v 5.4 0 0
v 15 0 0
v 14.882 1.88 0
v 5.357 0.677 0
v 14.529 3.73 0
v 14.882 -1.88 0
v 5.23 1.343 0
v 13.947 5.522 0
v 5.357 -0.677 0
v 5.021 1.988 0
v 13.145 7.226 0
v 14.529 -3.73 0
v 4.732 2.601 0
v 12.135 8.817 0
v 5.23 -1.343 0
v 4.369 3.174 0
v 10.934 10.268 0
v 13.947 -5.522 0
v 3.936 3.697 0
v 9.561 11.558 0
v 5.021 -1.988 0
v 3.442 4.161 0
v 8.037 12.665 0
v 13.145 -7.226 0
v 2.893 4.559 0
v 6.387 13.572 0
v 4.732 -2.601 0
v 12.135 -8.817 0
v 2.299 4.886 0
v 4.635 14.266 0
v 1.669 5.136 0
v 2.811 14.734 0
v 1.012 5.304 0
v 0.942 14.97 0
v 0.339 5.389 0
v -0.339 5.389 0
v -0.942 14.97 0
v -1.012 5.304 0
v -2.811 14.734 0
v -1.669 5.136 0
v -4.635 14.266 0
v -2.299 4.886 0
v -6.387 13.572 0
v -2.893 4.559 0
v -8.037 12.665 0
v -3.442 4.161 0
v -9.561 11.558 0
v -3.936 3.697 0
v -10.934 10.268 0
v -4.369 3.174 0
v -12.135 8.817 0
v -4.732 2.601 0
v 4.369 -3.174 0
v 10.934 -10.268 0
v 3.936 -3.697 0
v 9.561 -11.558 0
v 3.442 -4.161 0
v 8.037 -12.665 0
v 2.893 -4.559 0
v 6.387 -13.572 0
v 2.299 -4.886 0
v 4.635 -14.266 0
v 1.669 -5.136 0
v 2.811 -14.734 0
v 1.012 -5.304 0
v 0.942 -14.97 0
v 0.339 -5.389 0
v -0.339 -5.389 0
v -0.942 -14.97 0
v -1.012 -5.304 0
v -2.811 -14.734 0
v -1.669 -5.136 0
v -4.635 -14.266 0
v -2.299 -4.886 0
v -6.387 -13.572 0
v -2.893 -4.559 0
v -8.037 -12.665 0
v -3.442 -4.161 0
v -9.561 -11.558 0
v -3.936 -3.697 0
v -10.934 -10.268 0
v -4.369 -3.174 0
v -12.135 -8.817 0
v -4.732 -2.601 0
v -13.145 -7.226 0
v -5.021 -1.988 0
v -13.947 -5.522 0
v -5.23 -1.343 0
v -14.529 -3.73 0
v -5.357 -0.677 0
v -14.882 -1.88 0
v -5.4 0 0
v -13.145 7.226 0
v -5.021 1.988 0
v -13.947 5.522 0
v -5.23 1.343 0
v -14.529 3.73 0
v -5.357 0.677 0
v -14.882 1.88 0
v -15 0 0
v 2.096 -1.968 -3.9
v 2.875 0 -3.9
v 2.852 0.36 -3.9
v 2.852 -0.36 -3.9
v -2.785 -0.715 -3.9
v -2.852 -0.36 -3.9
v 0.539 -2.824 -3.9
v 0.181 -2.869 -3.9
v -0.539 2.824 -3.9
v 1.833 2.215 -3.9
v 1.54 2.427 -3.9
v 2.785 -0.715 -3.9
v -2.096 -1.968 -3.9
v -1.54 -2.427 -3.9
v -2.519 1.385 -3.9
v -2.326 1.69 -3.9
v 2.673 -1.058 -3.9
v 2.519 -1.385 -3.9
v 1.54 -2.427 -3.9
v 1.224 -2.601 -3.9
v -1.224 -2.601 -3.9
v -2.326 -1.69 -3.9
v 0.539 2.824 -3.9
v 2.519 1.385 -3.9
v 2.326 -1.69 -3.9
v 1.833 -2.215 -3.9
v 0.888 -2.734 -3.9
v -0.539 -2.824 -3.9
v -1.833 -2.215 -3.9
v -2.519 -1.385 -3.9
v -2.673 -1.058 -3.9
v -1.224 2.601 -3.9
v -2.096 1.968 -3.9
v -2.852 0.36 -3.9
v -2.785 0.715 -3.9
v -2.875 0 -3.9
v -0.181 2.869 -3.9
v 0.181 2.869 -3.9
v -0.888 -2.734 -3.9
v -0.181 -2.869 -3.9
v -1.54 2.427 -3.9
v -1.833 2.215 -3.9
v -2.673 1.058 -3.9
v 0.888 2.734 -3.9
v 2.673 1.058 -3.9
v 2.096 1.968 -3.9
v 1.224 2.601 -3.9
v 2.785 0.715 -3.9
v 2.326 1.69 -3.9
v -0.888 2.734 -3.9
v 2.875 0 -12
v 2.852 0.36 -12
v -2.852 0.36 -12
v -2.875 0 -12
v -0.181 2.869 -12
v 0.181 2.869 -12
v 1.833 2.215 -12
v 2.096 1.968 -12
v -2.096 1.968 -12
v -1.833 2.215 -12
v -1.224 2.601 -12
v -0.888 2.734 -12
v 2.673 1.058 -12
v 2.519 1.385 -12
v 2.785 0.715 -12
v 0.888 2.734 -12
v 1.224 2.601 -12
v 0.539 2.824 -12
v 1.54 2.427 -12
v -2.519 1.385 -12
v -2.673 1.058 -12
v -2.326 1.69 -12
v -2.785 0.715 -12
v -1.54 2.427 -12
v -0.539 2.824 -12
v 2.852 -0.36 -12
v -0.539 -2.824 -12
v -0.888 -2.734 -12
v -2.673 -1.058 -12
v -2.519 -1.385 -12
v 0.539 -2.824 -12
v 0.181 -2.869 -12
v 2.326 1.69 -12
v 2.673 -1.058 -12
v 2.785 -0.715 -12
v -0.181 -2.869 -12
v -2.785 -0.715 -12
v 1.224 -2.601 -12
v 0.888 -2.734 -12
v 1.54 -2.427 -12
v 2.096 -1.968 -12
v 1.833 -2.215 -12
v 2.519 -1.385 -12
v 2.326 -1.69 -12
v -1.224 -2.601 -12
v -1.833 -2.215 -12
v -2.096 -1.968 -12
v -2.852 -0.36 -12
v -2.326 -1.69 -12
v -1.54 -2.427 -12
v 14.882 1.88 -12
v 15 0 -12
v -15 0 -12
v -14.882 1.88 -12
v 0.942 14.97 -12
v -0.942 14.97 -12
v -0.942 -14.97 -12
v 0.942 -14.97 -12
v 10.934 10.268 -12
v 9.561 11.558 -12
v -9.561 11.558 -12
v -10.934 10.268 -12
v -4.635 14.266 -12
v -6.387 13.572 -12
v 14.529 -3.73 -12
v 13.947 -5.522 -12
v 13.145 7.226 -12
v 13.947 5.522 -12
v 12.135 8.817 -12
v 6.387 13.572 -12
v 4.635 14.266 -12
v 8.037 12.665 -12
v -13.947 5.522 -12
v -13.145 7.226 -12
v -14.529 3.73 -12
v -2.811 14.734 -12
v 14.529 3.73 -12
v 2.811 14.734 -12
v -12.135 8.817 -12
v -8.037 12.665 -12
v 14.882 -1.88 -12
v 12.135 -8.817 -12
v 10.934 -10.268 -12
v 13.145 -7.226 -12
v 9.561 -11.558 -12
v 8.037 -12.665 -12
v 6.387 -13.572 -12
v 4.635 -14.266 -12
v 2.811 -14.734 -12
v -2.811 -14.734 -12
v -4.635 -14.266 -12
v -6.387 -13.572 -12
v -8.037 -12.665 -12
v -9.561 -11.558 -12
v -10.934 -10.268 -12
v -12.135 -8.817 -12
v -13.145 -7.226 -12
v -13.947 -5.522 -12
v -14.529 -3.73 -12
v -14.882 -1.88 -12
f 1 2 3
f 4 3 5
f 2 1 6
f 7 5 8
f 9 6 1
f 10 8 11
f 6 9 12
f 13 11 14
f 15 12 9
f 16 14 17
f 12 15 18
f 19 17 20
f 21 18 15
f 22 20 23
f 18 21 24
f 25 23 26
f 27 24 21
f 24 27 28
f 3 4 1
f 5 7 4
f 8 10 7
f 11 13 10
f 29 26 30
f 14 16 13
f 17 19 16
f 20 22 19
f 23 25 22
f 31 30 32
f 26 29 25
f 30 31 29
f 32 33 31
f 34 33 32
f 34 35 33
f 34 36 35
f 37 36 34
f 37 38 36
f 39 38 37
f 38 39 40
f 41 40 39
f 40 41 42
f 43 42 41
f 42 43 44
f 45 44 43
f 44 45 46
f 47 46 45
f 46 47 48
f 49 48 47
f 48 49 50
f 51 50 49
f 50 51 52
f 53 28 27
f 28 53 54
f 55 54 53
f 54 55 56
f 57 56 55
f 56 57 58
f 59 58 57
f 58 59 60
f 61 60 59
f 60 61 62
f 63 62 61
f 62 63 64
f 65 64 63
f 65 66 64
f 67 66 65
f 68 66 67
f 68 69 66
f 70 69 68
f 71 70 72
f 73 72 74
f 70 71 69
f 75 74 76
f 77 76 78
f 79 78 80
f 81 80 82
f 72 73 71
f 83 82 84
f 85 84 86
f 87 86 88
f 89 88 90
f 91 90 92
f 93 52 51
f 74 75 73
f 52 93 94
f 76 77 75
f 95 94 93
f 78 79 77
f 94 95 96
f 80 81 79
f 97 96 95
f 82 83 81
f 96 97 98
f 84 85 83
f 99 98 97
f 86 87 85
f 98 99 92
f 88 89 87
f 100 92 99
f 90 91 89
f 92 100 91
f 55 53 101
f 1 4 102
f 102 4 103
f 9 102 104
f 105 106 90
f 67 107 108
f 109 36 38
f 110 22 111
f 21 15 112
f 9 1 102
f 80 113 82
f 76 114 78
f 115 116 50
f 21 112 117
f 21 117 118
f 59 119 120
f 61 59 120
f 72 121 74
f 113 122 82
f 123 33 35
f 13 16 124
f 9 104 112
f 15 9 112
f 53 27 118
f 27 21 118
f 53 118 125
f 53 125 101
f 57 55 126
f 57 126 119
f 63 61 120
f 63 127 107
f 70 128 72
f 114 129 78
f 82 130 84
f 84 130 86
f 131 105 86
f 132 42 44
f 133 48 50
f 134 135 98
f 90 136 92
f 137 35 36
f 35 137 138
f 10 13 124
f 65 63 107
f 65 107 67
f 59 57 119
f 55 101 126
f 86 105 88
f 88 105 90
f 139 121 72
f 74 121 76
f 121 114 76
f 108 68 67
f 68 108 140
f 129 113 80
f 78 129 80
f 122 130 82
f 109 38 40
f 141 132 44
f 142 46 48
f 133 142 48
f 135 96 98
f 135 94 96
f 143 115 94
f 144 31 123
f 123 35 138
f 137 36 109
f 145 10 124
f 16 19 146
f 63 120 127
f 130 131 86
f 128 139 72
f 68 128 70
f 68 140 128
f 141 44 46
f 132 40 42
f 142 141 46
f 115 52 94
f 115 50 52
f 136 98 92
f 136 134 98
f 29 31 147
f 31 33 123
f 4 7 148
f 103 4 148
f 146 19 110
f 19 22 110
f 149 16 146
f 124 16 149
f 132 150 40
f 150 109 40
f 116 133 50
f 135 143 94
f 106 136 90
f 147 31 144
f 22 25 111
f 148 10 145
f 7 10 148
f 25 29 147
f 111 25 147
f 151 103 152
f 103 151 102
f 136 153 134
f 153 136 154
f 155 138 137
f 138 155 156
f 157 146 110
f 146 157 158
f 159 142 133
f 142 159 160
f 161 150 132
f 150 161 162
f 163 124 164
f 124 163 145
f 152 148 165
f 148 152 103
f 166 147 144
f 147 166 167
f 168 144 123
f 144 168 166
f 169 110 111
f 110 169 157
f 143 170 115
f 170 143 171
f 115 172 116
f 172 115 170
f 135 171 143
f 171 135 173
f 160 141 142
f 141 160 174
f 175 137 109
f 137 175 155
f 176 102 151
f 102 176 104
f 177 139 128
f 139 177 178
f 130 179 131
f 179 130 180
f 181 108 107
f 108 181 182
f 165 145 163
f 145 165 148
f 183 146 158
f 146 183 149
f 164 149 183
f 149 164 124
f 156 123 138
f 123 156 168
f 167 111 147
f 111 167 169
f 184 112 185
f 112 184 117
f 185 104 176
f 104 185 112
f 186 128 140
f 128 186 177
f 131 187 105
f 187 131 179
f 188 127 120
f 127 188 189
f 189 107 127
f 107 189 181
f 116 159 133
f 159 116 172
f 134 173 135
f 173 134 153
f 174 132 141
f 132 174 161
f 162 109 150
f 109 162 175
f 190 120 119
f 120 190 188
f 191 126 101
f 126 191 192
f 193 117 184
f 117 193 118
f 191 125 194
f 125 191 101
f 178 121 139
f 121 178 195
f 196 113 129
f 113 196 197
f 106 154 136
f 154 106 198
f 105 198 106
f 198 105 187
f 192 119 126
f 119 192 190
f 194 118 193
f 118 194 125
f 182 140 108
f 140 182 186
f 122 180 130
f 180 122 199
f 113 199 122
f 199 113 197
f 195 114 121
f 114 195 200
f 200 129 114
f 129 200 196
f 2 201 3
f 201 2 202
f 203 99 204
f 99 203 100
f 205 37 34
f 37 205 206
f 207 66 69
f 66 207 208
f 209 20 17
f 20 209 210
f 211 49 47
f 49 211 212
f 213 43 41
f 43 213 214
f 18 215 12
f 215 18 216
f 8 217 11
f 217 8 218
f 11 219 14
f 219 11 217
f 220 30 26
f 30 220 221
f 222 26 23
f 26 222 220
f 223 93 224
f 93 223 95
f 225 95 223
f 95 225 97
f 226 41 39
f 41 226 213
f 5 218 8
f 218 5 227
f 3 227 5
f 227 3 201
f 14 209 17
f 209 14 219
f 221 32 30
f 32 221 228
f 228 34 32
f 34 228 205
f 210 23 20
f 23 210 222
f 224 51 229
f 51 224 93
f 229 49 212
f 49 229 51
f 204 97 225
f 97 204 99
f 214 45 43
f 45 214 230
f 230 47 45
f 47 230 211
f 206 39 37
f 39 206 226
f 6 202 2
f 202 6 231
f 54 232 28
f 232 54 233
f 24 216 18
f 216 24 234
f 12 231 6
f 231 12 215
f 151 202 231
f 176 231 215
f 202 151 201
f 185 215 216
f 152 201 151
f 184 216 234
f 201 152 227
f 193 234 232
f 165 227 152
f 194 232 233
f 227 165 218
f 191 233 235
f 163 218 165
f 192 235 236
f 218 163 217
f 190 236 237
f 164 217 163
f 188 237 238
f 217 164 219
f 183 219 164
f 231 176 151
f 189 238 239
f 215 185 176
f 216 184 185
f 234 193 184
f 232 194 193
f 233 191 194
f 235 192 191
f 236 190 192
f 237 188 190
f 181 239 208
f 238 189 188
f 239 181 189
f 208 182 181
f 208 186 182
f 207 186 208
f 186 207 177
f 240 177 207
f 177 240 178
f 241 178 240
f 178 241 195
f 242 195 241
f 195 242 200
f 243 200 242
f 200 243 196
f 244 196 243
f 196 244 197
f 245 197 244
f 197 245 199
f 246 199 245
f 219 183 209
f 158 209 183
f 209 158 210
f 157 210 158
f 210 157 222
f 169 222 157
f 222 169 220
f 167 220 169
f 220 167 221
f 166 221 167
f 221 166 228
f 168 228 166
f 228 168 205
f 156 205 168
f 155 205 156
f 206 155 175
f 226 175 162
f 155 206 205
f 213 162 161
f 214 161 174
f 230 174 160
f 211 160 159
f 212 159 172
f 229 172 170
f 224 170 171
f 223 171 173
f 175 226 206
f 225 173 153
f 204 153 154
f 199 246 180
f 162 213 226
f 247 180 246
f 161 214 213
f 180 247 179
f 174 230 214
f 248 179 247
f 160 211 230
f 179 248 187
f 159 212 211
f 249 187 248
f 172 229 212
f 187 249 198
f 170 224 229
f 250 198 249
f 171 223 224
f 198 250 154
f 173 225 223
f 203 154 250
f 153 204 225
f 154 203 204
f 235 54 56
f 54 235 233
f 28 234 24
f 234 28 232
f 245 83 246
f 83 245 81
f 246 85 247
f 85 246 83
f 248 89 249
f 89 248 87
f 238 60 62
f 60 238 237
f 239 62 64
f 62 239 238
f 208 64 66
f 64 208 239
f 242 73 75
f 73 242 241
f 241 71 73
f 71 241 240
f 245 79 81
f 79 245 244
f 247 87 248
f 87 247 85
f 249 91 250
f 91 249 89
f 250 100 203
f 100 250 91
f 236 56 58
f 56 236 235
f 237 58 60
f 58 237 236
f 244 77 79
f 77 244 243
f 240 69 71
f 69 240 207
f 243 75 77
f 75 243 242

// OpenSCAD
$fn = 50;


difference() {
	union() {
		translate(v = [0, 0, -12.0000000000]) {
			cylinder(h = 12, r = 15.0000000000);
		}
	}
	union() {
		translate(v = [0, 0, 0]) {
			rotate(a = [0, 0, 0]) {
				difference() {
					union() {
						translate(v = [0, 0, -15.0000000000]) {
							cylinder(h = 15, r = 2.6000000000);
						}
						translate(v = [0, 0, -3.9000000000]) {
							cylinder(h = 3.9000000000, r1 = 2.8750000000, r2 = 5.4000000000);
						}
						translate(v = [0, 0, -15.0000000000]) {
							cylinder(h = 15, r = 2.8750000000);
						}
						translate(v = [0, 0, -15.0000000000]) {
							cylinder(h = 15, r = 2.6000000000);
						}
					}
					union();
				}
			}
		}
	}
}
